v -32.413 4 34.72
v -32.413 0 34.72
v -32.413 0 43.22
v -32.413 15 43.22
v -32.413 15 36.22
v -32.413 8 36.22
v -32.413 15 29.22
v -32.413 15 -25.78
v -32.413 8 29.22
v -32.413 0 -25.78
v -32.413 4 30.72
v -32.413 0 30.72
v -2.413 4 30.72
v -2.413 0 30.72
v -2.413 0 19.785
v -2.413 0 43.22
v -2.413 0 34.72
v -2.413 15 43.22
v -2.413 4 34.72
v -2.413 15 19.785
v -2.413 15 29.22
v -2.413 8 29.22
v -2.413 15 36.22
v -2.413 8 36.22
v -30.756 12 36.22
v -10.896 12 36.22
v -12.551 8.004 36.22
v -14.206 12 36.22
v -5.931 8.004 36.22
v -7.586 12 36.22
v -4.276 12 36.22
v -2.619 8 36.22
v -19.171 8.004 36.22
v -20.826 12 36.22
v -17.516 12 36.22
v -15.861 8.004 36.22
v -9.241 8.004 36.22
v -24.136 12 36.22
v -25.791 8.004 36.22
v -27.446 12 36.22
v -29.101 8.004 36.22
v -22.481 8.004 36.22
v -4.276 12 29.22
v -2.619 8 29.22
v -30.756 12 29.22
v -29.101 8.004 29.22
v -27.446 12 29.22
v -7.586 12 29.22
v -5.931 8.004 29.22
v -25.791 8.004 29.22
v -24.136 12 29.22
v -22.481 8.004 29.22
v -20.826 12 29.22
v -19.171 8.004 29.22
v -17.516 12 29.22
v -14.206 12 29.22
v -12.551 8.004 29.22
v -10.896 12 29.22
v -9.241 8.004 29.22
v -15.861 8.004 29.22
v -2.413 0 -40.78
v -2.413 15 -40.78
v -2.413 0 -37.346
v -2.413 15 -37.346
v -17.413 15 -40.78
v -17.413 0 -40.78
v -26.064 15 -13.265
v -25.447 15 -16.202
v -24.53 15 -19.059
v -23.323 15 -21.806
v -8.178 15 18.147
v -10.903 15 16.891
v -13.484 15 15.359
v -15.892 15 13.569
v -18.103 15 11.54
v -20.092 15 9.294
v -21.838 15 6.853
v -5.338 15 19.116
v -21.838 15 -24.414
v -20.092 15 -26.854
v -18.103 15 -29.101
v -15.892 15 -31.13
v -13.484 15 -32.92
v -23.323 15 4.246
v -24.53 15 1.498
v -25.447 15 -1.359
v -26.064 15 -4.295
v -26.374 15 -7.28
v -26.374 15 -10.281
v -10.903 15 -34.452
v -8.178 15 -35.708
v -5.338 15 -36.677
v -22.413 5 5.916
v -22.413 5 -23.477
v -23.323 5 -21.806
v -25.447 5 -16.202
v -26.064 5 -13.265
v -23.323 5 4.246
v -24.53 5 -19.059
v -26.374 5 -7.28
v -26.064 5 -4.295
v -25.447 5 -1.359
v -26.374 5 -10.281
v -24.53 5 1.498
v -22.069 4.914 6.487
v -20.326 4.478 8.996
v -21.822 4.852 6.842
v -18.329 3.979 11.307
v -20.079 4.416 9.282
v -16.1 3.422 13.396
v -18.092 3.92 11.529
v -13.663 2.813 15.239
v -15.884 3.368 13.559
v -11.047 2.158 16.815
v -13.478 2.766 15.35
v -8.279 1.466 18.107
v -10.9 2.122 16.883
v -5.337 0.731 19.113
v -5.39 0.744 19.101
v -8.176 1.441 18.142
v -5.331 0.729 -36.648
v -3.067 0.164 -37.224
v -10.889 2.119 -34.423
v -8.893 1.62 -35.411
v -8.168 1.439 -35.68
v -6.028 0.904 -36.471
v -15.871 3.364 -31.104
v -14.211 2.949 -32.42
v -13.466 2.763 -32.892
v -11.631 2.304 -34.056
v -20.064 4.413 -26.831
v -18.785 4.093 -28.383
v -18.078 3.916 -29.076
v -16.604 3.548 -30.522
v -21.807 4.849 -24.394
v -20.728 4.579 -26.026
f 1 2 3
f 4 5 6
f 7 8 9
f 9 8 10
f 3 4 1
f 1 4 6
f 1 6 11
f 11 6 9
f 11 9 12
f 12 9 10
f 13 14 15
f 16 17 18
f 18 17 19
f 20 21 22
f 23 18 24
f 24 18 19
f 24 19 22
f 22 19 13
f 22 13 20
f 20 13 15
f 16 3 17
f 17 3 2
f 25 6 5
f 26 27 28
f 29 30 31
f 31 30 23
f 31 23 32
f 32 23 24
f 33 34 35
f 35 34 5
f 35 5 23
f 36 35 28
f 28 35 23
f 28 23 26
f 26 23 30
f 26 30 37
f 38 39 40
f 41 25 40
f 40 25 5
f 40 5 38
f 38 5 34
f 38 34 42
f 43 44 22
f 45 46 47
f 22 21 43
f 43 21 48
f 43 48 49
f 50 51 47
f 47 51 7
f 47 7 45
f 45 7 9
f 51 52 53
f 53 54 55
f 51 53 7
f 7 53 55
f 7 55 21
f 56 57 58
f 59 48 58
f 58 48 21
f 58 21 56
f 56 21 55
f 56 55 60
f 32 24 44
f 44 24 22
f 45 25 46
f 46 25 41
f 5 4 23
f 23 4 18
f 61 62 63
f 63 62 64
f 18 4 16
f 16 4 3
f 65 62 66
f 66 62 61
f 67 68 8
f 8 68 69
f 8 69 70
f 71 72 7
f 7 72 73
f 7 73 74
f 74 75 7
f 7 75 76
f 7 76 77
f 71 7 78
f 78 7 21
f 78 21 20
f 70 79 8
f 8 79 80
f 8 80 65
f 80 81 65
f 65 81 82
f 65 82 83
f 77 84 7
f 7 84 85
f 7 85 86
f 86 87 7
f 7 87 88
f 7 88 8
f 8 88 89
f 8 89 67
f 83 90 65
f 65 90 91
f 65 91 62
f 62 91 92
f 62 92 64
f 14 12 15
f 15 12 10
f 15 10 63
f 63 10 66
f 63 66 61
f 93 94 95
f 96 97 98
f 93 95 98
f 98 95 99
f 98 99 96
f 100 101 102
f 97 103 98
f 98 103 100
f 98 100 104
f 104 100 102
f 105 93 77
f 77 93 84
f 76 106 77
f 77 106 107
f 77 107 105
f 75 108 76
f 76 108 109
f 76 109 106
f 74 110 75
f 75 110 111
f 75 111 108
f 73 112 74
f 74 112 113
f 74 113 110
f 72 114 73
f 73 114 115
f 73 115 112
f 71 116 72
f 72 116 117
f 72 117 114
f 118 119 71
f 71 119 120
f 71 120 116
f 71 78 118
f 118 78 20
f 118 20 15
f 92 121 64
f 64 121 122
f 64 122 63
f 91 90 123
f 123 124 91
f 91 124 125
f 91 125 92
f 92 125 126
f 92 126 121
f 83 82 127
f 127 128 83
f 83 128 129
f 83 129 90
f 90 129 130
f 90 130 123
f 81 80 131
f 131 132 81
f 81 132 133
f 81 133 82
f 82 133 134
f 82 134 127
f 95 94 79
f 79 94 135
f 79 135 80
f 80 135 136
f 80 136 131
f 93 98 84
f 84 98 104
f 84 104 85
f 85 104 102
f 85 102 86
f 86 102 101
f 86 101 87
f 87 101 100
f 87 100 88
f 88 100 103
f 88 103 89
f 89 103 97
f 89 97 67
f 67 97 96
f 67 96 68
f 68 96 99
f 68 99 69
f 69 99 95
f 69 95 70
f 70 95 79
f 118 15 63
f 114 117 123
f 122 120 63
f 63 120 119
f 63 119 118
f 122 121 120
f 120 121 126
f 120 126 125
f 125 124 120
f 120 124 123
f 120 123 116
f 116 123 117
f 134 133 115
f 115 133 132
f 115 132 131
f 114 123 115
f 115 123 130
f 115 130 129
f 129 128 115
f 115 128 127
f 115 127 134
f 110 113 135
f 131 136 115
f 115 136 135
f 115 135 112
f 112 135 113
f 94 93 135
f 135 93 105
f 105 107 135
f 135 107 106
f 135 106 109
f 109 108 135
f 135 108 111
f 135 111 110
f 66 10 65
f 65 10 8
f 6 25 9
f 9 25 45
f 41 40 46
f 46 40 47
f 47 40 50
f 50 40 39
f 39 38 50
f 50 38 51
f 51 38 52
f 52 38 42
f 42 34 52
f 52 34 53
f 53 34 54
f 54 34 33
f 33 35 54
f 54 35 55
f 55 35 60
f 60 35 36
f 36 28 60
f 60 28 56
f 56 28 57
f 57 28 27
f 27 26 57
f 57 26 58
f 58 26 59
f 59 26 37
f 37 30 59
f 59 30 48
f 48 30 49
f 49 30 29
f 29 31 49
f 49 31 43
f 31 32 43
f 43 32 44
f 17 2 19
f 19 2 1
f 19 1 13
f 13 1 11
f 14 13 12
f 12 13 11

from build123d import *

# Parameters (mm, degrees)
ESQUISSE2_W                = 30
ESQUISSE2_H                = 84
BOSS_EXTRU_1_DEPTH         = 15
ESQUISSE3_R                = 29
ENL_V_MAT_EXTRU_1_DEPTH    = 10
CHANFREIN1_SIZE            = 5
CHANFREIN1_SIZE_2          = 20
CHANFREIN2_SIZE            = 15
ESQUISSE7_W                = 30
ESQUISSE7_H                = 7
ENL_V_MAT_EXTRU_2_DEPTH    = 7
BOSS_EXTRU_2_DEPTH         = 7
R_P_TITION_LIN_AIRE1_COUNT = 9
R_P_TITION_LIN_AIRE1_PITCH = 3.31
ENL_V_MAT_EXTRU_3_REACH    = 56.708
ESQUISSE9_W                = 4
ESQUISSE9_H                = 4


with BuildPart() as part:
    # Esquisse2 → Boss.-Extru.1 (new body)
    with BuildSketch(Plane(origin=(0, 0, 0), x_dir=(1, 0, 0), z_dir=(0, 1, 0))):
        with Locations((-17.412854797, -1.219560319)):
            Rectangle(ESQUISSE2_W, ESQUISSE2_H)
    extrude(amount=BOSS_EXTRU_1_DEPTH)

    # Esquisse3 → Enlèv. mat.-Extru.1 (cut)
    with BuildSketch(Plane(origin=(0, 15, 0), x_dir=(1, 0, 0), z_dir=(0, 1, 0))):
        with Locations((2.587145203, 8.780439681)):
            Circle(ESQUISSE3_R)
    extrude(amount=-ENL_V_MAT_EXTRU_1_DEPTH, mode=Mode.SUBTRACT)

    # Chanfrein1
    # the kernel refuses this chamfer: 20, 5 mm, written as the material it takes off along each edge
    with BuildSketch(Plane(origin=(-2.412854797, 5, -89.288703391), x_dir=(0.14778356633657125, -0.9890197255468893, 0), z_dir=(0, 0, 1))) as chanfrein1_piece_1_section:
        Polygon((CHANFREIN1_SIZE * 0.989019725547, -CHANFREIN1_SIZE * 0.147783566337), (-CHANFREIN1_SIZE_2 * 0.147783566337, -CHANFREIN1_SIZE_2 * 0.989019725547), (0, 0), align=None)
    chanfrein1_piece_1 = extrude(amount=161.016527419, mode=Mode.PRIVATE)
    chanfrein1_piece_1 = chanfrein1_piece_1 & Plane(origin=(2.587145203, 3.276810051, -8.780439681), x_dir=(1, 0, 0), z_dir=(0, 1, 0)) * Cylinder(29, 402, mode=Mode.PRIVATE)
    add(chanfrein1_piece_1, mode=Mode.SUBTRACT)

    # Chanfrein2
    chanfrein2_edges = [part.edges().sort_by_distance(p)[0] for p in [
        (-32.412854797, 7.5, -40.780439681),
    ]]
    chamfer(chanfrein2_edges, length=CHANFREIN2_SIZE)

    # Esquisse7 → Enlèv. mat.-Extru.2 (cut)
    with BuildSketch(Plane(origin=(0, 15, 0), x_dir=(1, 0, 0), z_dir=(0, 1, 0))):
        with Locations((-17.412854797, -32.719560319)):
            Rectangle(ESQUISSE7_W, ESQUISSE7_H)
    extrude(amount=-ENL_V_MAT_EXTRU_2_DEPTH, mode=Mode.SUBTRACT)

    # Esquisse8 → Boss.-Extru.2 (add)
    with BuildSketch(Plane.XY.offset(29.219560319)):
        Polygon((-32.412854797, 8), (-29.099146298, 8), (-30.756000548, 12), align=None)
    boss_extru_2 = extrude(amount=BOSS_EXTRU_2_DEPTH)

    # Répétition linéaire1: Boss.-Extru.2 ×9
    with Locations(*[(i * R_P_TITION_LIN_AIRE1_PITCH, 0, 0) for i in range(1, R_P_TITION_LIN_AIRE1_COUNT)]):
        add(boss_extru_2)

    # Esquisse9 → Enlèv. mat.-Extru.3 (cut, up to next)
    with BuildSketch(Plane(origin=(-2.412854797, 0, 0), x_dir=(0, 0, -1), z_dir=(1, 0, 0)), mode=Mode.PRIVATE) as enl_v_mat_extru_3_sk1:
        with Locations((-32.719560319, 2)):
            Rectangle(ESQUISSE9_W, ESQUISSE9_H)
    enl_v_mat_extru_3_tool1 = extrude(enl_v_mat_extru_3_sk1.sketch, amount=-ENL_V_MAT_EXTRU_3_REACH, mode=Mode.PRIVATE) & part.part
    add(enl_v_mat_extru_3_tool1.solids().sort_by_distance((-2.412855, 2, 32.71956))[0], mode=Mode.SUBTRACT)


solid = part.part
